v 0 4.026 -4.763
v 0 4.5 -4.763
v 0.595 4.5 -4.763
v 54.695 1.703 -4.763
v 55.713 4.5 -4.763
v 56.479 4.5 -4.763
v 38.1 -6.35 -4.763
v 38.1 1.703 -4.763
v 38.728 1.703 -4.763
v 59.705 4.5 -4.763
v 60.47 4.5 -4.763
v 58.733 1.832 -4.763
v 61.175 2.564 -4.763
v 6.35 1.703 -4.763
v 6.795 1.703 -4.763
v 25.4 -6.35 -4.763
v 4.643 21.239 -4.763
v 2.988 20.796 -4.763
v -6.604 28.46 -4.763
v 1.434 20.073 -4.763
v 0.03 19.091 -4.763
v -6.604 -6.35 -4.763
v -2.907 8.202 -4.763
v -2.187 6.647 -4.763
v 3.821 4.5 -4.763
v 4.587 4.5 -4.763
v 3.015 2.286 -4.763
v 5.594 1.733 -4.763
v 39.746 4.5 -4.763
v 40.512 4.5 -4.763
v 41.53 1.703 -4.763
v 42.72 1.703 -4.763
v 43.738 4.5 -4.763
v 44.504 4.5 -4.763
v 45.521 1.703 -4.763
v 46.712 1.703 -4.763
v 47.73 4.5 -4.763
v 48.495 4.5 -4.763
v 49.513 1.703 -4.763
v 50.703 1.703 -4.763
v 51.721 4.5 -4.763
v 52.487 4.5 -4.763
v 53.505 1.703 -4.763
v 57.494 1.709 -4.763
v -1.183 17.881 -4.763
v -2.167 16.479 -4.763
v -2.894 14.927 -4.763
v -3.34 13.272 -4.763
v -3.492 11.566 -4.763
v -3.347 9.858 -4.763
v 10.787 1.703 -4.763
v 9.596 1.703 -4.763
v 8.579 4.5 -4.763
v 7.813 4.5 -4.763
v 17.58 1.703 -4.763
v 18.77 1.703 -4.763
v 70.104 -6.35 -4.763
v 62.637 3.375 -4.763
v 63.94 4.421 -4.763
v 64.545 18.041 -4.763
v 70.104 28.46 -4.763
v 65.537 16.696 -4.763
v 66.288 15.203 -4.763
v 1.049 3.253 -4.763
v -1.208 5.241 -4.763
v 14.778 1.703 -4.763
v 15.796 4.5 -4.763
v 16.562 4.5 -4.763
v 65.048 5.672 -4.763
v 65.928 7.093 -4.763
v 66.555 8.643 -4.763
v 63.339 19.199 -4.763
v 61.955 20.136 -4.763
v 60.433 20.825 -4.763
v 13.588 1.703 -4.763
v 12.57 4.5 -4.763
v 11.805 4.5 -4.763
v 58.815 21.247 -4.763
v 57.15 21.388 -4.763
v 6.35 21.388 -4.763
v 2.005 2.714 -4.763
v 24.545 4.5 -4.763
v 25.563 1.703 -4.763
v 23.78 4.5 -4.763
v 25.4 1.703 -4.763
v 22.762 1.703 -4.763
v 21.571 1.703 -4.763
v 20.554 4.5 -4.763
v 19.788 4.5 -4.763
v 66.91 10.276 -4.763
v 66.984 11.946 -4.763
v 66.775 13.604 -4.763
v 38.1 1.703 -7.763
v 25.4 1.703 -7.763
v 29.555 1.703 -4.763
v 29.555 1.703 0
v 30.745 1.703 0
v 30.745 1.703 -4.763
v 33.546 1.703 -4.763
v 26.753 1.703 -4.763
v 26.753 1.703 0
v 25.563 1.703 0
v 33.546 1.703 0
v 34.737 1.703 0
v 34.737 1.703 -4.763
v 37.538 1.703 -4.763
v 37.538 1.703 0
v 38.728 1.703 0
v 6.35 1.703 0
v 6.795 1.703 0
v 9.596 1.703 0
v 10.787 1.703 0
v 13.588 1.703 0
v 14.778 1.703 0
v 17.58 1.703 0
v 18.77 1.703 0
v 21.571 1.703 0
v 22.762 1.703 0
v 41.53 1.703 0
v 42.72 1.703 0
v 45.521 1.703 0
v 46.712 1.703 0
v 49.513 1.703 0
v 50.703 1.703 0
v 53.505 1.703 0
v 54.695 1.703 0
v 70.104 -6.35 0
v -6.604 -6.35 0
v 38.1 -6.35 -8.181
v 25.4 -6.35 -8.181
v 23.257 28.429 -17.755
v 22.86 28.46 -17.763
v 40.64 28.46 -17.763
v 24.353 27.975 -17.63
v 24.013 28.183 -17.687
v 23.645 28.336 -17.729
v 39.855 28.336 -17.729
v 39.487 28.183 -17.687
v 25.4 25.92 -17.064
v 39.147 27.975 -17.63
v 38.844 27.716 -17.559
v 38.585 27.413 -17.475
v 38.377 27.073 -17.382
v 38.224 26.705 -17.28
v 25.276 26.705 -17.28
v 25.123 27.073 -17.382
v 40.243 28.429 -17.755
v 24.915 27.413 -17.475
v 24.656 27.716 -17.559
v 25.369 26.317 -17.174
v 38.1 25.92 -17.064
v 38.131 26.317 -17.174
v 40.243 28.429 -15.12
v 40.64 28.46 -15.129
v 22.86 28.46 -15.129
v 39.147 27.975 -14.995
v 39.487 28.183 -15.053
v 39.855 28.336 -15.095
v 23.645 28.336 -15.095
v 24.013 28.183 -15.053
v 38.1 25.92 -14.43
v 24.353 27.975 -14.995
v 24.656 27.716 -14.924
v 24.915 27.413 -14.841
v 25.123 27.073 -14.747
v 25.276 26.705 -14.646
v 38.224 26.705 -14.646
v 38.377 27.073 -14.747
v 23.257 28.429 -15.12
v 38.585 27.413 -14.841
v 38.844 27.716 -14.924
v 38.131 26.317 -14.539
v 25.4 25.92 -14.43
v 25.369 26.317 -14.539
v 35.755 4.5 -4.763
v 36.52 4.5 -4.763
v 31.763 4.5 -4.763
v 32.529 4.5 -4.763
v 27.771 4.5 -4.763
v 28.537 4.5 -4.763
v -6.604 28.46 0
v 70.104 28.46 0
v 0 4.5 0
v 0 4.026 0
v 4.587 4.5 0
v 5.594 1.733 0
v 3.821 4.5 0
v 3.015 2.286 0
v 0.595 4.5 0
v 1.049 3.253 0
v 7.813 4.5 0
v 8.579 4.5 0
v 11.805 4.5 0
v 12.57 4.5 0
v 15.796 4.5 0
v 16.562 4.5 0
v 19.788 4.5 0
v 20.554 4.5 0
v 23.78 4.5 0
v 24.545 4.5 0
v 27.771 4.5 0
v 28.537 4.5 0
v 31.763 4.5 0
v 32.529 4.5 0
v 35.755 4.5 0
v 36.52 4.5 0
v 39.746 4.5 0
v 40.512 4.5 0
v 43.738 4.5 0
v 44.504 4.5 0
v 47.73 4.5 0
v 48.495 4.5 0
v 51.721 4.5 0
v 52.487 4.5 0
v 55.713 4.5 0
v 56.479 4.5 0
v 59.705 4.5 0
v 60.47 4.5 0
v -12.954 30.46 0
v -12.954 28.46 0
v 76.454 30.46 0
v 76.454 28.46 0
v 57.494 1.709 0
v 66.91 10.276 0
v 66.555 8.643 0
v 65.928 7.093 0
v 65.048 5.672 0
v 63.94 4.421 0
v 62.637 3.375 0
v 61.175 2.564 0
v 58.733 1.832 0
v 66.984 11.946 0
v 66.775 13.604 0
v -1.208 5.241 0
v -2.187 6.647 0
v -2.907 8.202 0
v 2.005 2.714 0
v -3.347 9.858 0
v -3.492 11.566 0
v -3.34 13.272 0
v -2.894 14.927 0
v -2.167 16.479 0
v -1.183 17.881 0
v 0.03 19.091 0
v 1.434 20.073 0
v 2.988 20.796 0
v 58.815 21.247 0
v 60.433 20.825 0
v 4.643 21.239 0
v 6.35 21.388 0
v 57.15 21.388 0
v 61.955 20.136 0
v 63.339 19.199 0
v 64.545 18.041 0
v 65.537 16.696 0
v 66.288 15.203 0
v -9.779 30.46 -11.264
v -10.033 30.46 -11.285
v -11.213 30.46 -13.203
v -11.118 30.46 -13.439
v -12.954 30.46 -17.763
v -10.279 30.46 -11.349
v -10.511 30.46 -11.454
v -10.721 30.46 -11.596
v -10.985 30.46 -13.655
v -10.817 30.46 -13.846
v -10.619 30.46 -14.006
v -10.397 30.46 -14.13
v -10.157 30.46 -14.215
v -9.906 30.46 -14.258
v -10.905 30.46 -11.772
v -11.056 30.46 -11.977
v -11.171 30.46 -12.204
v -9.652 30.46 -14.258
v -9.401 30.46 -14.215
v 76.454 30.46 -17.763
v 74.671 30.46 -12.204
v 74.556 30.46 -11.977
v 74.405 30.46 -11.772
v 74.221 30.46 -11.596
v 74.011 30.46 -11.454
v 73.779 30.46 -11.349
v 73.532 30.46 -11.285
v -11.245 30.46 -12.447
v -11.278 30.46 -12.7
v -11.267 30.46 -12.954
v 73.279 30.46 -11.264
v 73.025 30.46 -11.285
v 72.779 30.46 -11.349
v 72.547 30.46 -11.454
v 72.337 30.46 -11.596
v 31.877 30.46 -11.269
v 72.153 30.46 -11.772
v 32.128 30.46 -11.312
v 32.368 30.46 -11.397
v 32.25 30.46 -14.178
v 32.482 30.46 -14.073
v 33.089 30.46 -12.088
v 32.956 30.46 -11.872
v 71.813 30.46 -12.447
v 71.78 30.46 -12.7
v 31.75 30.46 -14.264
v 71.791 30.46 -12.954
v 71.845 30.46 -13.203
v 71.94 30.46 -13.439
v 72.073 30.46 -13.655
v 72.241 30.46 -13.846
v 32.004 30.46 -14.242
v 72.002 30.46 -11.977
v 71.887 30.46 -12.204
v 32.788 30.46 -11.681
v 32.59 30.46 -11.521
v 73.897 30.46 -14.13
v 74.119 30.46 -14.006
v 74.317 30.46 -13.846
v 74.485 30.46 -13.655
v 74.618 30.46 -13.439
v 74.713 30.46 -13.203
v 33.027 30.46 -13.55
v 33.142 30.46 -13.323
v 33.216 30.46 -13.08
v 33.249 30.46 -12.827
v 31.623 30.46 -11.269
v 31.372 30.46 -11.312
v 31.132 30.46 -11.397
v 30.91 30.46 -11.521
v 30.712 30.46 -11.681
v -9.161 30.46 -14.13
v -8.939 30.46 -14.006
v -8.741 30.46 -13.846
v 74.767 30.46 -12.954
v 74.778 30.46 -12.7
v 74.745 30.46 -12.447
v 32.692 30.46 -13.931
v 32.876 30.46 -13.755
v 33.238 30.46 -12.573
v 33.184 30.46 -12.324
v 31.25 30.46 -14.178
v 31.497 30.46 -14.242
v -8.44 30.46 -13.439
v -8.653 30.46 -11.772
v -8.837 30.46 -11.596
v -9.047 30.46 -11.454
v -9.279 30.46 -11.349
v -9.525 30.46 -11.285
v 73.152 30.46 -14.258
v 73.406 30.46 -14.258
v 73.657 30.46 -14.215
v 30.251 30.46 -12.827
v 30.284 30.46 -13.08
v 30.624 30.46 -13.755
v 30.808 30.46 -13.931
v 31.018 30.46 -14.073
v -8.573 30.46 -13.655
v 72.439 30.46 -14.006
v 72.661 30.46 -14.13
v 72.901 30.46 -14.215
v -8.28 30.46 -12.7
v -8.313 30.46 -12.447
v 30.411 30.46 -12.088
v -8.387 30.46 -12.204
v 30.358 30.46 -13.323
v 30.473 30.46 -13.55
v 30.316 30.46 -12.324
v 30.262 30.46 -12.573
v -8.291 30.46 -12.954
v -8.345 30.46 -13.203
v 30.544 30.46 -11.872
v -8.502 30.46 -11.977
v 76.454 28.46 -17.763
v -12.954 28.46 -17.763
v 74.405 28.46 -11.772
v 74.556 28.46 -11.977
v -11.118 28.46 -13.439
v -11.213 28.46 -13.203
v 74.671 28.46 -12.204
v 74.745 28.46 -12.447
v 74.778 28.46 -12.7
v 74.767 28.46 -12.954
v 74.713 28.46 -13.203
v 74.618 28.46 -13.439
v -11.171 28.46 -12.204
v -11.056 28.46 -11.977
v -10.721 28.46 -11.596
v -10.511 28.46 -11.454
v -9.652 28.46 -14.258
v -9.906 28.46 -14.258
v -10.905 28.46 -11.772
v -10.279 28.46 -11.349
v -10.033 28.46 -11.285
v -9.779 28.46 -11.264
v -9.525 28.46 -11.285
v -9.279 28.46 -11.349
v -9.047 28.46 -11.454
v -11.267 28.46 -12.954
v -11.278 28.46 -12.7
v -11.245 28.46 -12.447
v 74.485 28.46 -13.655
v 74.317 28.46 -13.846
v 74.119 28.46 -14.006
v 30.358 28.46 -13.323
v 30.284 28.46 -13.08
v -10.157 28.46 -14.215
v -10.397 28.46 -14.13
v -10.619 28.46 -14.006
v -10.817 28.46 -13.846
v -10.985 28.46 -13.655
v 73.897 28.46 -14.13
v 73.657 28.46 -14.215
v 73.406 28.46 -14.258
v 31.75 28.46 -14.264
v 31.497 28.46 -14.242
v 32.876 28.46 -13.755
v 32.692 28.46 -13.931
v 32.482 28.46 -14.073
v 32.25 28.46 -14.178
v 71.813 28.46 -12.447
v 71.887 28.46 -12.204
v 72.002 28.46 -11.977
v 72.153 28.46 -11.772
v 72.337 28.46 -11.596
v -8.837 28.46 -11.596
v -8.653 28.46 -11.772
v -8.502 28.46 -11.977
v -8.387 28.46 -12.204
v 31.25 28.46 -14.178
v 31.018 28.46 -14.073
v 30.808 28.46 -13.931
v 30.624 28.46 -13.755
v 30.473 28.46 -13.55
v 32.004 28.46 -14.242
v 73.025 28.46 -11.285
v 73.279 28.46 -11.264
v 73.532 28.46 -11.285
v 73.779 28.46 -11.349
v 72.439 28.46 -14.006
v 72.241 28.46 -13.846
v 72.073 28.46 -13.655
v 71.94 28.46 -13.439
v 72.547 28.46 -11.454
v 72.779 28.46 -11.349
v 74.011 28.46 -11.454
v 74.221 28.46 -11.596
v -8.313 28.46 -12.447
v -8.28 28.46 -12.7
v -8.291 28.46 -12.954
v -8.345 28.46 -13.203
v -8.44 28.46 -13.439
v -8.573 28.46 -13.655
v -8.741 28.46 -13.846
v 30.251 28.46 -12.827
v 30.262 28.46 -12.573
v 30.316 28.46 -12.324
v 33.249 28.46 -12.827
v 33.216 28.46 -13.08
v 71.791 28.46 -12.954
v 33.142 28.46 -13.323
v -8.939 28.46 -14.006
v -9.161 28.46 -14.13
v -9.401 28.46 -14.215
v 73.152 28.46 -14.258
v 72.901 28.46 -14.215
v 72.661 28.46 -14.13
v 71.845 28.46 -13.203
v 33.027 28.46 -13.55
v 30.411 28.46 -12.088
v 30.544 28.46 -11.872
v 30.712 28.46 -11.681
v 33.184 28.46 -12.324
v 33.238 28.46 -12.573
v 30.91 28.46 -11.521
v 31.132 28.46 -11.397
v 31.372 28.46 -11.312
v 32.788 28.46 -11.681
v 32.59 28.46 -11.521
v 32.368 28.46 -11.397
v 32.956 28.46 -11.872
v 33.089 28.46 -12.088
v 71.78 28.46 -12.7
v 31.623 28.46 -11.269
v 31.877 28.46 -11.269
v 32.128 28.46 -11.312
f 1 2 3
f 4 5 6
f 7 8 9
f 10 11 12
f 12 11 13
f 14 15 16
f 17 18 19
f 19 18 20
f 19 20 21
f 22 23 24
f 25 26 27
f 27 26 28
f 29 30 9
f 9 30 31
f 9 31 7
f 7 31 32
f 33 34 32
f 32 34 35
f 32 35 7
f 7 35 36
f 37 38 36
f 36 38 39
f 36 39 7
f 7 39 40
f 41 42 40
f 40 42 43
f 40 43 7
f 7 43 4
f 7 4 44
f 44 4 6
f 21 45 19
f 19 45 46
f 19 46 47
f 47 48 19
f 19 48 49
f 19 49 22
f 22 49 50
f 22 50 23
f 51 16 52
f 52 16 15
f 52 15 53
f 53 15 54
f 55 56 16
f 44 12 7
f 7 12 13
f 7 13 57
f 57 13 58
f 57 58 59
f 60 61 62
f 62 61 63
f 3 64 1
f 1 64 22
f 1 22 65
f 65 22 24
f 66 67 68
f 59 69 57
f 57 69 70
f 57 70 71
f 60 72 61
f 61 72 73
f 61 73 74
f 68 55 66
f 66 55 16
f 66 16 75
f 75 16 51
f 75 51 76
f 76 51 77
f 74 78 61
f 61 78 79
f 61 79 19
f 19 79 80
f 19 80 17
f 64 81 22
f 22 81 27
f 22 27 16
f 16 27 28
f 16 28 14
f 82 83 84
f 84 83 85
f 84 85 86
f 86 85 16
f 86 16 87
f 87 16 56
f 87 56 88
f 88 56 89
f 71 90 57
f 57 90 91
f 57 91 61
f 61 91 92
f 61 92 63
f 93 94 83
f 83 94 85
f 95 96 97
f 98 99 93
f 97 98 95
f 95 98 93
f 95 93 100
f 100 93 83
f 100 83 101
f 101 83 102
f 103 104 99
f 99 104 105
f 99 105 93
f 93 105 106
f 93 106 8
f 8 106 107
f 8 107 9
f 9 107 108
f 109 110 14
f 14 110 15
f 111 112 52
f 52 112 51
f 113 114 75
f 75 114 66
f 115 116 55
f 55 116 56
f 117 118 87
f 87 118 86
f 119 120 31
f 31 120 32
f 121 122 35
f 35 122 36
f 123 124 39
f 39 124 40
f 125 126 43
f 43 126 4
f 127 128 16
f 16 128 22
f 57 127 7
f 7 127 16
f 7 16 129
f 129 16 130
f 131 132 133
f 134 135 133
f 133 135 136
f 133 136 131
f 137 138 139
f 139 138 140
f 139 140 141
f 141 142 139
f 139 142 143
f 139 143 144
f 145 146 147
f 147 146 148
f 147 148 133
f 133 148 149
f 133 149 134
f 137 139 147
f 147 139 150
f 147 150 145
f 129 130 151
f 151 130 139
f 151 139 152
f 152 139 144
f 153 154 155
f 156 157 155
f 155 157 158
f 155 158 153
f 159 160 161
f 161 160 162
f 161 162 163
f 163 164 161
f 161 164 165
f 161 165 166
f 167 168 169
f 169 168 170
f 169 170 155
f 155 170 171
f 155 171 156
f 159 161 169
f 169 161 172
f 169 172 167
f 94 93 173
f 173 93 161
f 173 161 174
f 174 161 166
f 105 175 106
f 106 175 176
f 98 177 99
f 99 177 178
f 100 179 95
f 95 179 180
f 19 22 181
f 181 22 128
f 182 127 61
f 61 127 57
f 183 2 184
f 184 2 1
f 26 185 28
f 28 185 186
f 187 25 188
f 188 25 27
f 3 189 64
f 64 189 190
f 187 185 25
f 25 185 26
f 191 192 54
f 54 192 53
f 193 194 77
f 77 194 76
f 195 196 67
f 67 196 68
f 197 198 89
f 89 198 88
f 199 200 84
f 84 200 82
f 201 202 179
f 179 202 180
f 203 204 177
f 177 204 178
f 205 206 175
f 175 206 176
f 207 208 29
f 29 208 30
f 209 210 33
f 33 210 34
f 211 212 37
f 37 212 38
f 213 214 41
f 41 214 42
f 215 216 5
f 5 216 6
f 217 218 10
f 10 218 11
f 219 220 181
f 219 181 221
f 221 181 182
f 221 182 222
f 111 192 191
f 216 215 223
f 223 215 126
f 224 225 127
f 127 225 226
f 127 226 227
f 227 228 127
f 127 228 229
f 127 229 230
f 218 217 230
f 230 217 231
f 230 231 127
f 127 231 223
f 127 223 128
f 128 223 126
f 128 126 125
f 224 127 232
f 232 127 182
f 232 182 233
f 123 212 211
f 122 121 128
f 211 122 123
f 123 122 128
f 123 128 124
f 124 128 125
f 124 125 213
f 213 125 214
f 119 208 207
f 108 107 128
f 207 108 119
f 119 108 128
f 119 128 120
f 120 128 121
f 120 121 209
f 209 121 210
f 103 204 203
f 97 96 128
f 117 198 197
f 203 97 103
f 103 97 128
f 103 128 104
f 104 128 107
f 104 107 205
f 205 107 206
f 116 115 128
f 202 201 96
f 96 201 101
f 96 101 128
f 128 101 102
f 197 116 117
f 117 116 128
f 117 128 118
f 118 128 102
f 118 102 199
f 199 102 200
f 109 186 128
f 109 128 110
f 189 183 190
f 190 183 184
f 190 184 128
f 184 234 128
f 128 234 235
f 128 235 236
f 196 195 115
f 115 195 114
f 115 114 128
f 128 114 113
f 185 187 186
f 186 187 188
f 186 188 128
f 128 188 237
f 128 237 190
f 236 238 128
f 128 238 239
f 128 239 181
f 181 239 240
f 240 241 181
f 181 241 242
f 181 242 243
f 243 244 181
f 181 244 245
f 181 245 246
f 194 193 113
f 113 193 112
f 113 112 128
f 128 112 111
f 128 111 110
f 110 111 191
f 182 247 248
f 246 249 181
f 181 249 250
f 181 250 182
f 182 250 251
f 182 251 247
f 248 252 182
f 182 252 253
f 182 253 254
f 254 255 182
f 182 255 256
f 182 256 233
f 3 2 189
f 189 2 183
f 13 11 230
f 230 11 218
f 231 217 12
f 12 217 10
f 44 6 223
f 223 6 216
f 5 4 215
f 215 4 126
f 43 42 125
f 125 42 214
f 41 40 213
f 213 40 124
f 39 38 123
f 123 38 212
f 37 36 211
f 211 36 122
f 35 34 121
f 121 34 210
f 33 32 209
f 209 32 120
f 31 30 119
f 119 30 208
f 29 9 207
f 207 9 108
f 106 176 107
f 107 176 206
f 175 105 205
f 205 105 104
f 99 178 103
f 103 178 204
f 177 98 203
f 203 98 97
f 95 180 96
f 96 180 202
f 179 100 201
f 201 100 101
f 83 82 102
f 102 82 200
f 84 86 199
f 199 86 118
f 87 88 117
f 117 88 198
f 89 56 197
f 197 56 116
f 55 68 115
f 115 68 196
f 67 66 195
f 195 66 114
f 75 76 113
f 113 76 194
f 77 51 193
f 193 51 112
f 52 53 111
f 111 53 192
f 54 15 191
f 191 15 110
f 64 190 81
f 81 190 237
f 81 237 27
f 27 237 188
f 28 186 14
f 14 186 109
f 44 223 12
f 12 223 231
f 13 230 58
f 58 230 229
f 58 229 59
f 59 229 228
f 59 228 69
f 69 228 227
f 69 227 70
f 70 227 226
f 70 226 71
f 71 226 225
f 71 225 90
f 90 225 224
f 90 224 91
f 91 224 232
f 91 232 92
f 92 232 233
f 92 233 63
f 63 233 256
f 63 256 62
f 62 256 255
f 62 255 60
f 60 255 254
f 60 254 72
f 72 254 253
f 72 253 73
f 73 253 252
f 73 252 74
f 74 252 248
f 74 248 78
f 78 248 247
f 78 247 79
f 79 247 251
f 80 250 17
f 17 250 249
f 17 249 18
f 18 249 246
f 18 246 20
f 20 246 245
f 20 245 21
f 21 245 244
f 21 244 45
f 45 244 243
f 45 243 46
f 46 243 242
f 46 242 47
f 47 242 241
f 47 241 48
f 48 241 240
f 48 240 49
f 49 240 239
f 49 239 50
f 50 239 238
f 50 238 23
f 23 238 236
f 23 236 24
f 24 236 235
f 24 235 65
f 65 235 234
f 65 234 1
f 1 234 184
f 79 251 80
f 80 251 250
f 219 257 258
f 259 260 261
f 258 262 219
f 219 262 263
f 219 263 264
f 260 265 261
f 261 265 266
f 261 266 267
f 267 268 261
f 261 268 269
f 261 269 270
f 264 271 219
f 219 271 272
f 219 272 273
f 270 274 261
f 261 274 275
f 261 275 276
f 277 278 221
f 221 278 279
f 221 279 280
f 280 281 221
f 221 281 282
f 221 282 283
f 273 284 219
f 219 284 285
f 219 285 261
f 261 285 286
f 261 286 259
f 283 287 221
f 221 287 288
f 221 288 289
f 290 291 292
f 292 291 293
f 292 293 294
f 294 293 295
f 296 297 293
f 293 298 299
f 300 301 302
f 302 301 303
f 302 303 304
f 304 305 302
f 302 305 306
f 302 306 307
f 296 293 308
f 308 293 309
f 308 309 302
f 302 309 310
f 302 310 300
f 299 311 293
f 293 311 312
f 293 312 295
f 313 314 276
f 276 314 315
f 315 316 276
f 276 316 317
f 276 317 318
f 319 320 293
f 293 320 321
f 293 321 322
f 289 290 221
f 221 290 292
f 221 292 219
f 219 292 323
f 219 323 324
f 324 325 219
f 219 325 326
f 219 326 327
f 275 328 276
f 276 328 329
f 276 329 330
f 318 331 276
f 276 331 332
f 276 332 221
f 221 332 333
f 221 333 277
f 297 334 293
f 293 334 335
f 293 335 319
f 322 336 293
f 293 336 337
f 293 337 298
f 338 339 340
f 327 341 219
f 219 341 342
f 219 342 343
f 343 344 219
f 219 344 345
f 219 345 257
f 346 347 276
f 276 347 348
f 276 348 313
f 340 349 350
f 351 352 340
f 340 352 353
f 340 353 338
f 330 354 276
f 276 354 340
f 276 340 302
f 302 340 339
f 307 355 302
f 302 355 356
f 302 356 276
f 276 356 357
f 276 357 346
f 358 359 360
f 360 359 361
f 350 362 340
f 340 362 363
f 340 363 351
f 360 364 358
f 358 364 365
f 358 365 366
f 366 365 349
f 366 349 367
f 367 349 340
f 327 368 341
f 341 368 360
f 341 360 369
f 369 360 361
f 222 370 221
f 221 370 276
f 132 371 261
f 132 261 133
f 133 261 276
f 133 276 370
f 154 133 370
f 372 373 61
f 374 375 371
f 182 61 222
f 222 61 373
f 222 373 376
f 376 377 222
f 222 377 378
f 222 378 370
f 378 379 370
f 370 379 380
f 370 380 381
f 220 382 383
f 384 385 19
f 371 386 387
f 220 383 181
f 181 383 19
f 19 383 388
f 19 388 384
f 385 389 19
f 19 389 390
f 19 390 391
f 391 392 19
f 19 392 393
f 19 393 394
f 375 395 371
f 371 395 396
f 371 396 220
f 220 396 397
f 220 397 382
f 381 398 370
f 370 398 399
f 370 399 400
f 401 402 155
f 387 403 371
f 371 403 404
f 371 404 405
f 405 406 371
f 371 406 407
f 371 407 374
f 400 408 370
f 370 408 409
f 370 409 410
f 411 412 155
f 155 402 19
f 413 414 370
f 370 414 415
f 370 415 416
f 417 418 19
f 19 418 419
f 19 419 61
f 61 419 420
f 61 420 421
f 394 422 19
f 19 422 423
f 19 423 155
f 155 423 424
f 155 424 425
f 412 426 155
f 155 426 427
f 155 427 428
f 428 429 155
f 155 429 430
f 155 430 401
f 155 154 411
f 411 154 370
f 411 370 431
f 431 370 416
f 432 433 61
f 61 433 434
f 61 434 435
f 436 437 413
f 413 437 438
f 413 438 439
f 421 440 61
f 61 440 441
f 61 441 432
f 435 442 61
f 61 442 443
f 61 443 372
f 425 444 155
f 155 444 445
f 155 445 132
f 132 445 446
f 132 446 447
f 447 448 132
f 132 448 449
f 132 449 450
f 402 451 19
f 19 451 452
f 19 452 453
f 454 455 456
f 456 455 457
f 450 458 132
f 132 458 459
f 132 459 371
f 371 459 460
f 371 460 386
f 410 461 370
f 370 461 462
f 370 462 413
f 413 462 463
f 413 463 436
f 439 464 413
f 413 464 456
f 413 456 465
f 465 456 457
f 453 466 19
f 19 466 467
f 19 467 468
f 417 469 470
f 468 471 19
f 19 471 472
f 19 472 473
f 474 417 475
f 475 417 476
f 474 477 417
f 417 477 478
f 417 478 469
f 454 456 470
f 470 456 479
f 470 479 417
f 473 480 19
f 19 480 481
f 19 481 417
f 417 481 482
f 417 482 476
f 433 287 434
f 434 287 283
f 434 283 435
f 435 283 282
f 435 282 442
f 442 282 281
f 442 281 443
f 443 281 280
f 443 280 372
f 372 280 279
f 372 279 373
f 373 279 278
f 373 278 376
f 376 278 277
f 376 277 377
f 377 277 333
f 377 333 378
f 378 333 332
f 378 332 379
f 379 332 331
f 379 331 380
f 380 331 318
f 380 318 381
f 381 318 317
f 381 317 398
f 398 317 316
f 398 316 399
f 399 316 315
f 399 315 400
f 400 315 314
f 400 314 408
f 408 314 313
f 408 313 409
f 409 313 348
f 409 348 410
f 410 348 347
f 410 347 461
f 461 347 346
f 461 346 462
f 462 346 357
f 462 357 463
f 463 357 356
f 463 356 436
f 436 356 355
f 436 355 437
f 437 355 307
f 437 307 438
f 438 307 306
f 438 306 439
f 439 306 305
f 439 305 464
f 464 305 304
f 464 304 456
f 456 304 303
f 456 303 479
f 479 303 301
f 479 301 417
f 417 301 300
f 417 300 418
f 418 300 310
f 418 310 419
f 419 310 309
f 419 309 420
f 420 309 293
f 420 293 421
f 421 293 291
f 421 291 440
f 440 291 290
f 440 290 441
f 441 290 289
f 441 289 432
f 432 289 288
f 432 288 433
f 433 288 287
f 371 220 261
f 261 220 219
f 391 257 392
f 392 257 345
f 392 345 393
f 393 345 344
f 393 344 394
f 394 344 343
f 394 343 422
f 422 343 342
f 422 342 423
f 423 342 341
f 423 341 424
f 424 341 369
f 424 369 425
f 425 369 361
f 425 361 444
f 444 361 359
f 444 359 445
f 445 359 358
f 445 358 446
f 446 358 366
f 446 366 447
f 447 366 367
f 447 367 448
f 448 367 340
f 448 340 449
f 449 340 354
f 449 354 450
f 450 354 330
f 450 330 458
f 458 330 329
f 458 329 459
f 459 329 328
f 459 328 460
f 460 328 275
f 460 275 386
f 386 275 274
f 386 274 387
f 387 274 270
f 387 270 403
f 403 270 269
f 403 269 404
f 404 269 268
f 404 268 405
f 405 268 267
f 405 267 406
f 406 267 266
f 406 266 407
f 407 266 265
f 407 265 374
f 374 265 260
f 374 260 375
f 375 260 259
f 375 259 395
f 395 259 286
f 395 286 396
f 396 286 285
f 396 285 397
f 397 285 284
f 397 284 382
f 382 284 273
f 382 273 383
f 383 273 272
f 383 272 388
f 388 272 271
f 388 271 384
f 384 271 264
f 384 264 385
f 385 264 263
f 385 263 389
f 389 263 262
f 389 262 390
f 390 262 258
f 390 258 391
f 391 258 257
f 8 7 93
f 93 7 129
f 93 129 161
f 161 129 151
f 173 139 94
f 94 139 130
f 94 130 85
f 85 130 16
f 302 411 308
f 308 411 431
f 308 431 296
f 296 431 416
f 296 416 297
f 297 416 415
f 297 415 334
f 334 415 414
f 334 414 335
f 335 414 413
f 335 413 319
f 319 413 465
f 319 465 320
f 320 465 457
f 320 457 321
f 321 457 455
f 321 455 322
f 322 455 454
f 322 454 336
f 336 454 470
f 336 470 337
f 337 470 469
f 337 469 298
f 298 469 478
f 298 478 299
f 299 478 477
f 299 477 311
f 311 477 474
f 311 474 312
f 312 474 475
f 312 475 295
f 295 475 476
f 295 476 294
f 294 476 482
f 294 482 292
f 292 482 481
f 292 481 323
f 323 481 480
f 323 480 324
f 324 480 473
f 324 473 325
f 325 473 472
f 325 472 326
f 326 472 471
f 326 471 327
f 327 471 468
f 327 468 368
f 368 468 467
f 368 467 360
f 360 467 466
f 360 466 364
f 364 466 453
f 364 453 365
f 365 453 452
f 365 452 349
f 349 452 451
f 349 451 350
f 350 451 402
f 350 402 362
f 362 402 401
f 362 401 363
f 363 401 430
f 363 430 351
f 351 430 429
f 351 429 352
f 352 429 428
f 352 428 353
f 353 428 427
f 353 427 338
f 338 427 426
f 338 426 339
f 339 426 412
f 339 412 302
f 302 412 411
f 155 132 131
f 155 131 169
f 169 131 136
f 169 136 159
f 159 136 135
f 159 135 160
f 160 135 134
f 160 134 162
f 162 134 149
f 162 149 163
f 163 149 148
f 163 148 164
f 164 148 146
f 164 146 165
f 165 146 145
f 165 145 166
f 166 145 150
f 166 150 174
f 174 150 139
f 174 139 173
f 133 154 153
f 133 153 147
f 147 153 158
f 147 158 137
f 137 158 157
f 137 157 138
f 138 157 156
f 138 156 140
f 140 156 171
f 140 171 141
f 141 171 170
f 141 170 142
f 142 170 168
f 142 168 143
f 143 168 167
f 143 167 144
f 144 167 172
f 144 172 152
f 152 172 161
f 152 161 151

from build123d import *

# Parameters (mm, degrees)
SKETCH1_W           = 63.5
SKETCH1_H           = 4.7625
BOSS_EXTRUDE1_DEPTH = 4.5
CUT_EXTRUDE1_DEPTH  = 64.837147542
SKETCH4_W           = 76.708
SKETCH4_H           = 36.80996
BOSS_EXTRUDE2_DEPTH = 4.7625
SKETCH6_W           = 6.35
SKETCH6_H           = 17.76349
SKETCH6_R           = 1.5
BOSS_EXTRUDE3_DEPTH = 2
BOSS_EXTRUDE4_DEPTH = 25.4
BOSS_EXTRUDE5_DEPTH = 33.3375
SKETCH8_W           = 19.05
SKETCH8_H           = 13.00099
CUT_EXTRUDE2_DEPTH  = 86.863199382
SKETCH9_R           = 1.5
CUT_EXTRUDE3_DEPTH  = 86.863199382
FILLET1_R           = 2.54
SKETCH10_W          = 13.00099
SKETCH10_H          = 2
BOSS_EXTRUDE6_DEPTH = 5.0165
SKETCH11_W          = 13.00099
SKETCH11_H          = 2
BOSS_EXTRUDE7_DEPTH = 5.0165


with BuildPart() as part:
    # Sketch1 → Boss-Extrude1 (new body)
    with BuildSketch(Plane(origin=(0, 0, 0), x_dir=(1, 0, 0), z_dir=(0, 1, 0))):
        with Locations((31.75, 2.38125)):
            Rectangle(SKETCH1_W, SKETCH1_H)
    extrude(amount=BOSS_EXTRUDE1_DEPTH)

    # Sketch2 → Cut-Extrude1 (cut, through all)
    with BuildSketch(Plane.XY):
        Polygon((0.595167363, 4.5), (1.613024682, 1.70346), (2.208192045, 1.70346), (2.803359408, 1.70346), (3.821216727, 4.5), align=None)
        Polygon((4.586843593, 4.5), (5.604700912, 1.70346), (6.199868275, 1.70346), (6.795035638, 1.70346), (7.812892957, 4.5), align=None)
        Polygon((8.578519823, 4.5), (9.596377142, 1.70346), (10.191544505, 1.70346), (10.786711868, 1.70346), (11.804569186, 4.5), align=None)
        Polygon((12.570196052, 4.5), (13.588053371, 1.70346), (14.183220734, 1.70346), (14.778388097, 1.70346), (15.796245416, 4.5), align=None)
        Polygon((16.561872282, 4.5), (17.579729601, 1.70346), (18.174896964, 1.70346), (18.770064327, 1.70346), (19.787921646, 4.5), align=None)
        Polygon((20.553548512, 4.5), (21.571405831, 1.70346), (22.166573194, 1.70346), (22.761740557, 1.70346), (23.779597876, 4.5), align=None)
        Polygon((24.545224742, 4.5), (25.563082061, 1.70346), (26.158249424, 1.70346), (26.753416787, 1.70346), (27.771274106, 4.5), align=None)
        Polygon((28.536900972, 4.5), (29.554758291, 1.70346), (30.149925654, 1.70346), (30.745093017, 1.70346), (31.762950336, 4.5), align=None)
        Polygon((32.528577202, 4.5), (33.546434521, 1.70346), (34.141601884, 1.70346), (34.736769246, 1.70346), (35.754626565, 4.5), align=None)
        Polygon((36.520253431, 4.5), (37.53811075, 1.70346), (38.133278113, 1.70346), (38.728445476, 1.70346), (39.746302795, 4.5), align=None)
        Polygon((40.511929661, 4.5), (41.52978698, 1.70346), (42.124954343, 1.70346), (42.720121706, 1.70346), (43.737979025, 4.5), align=None)
        Polygon((44.503605891, 4.5), (45.52146321, 1.70346), (46.116630573, 1.70346), (46.711797936, 1.70346), (47.729655255, 4.5), align=None)
        Polygon((48.495282121, 4.5), (49.51313944, 1.70346), (50.108306803, 1.70346), (50.703474166, 1.70346), (51.721331485, 4.5), align=None)
        Polygon((52.486958351, 4.5), (53.50481567, 1.70346), (54.099983033, 1.70346), (54.695150396, 1.70346), (55.713007715, 4.5), align=None)
        Polygon((56.478634581, 4.5), (57.496491899, 1.70346), (58.091659262, 1.70346), (58.686826625, 1.70346), (59.704683944, 4.5), align=None)
        Polygon((60.47031081, 4.5), (61.488168129, 1.70346), (62.083335492, 1.70346), (62.678502855, 1.70346), (63.696360174, 4.5), align=None)
        Polygon((64.46198704, 4.5), (65.479844359, 1.70346), (66.075011722, 1.70346), (66.670179085, 1.70346), (67.688036404, 4.5), align=None)
        Polygon((68.45366327, 4.5), (69.471520589, 1.70346), (70.066687952, 1.70346), (70.661855315, 1.70346), (71.679712634, 4.5), align=None)
        Polygon((72.4453395, 4.5), (73.463196819, 1.70346), (74.058364182, 1.70346), (74.653531545, 1.70346), (75.671388864, 4.5), align=None)
        Polygon((76.43701573, 4.5), (77.454873049, 1.70346), (78.050040412, 1.70346), (78.645207775, 1.70346), (79.663065094, 4.5), align=None)
        Polygon((80.42869196, 4.5), (81.446549278, 1.70346), (82.041716641, 1.70346), (82.636884004, 1.70346), (83.654741323, 4.5), align=None)
        Polygon((84.420368189, 4.5), (85.438225508, 1.70346), (86.033392871, 1.70346), (86.628560234, 1.70346), (87.646417553, 4.5), align=None)
        Polygon((88.412044419, 4.5), (89.429901738, 1.70346), (90.025069101, 1.70346), (90.620236464, 1.70346), (91.638093783, 4.5), align=None)
        Polygon((92.403720649, 4.5), (93.421577968, 1.70346), (94.016745331, 1.70346), (94.611912694, 1.70346), (95.629770013, 4.5), align=None)
        Polygon((96.395396879, 4.5), (97.413254198, 1.70346), (98.008421561, 1.70346), (98.603588924, 1.70346), (99.621446243, 4.5), align=None)
        Polygon((100.387073109, 4.5), (101.404930428, 1.70346), (102.000097791, 1.70346), (102.595265154, 1.70346), (103.613122472, 4.5), align=None)
        Polygon((104.378749338, 4.5), (105.396606657, 1.70346), (105.99177402, 1.70346), (106.586941383, 1.70346), (107.604798702, 4.5), align=None)
        Polygon((108.370425568, 4.5), (109.388282887, 1.70346), (109.98345025, 1.70346), (110.578617613, 1.70346), (111.596474932, 4.5), align=None)
        Polygon((112.362101798, 4.5), (113.379959117, 1.70346), (113.97512648, 1.70346), (114.570293843, 1.70346), (115.588151162, 4.5), align=None)
        Polygon((116.353778028, 4.5), (117.371635347, 1.70346), (117.96680271, 1.70346), (118.561970073, 1.70346), (119.579827392, 4.5), align=None)
        Polygon((120.345454258, 4.5), (121.363311577, 1.70346), (121.95847894, 1.70346), (122.553646303, 1.70346), (123.571503622, 4.5), align=None)
        Polygon((124.337130488, 4.5), (125.354987807, 1.70346), (125.95015517, 1.70346), (126.545322532, 1.70346), (127.563179851, 4.5), align=None)
        Polygon((128.328806717, 4.5), (129.346664036, 1.70346), (129.941831399, 1.70346), (130.536998762, 1.70346), (131.554856081, 4.5), align=None)
        Polygon((132.320482947, 4.5), (133.338340266, 1.70346), (133.933507629, 1.70346), (134.528674992, 1.70346), (135.546532311, 4.5), align=None)
        Polygon((136.312159177, 4.5), (137.330016496, 1.70346), (137.925183859, 1.70346), (138.520351222, 1.70346), (139.538208541, 4.5), align=None)
        Polygon((140.303835407, 4.5), (141.321692726, 1.70346), (141.916860089, 1.70346), (142.512027452, 1.70346), (143.529884771, 4.5), align=None)
        Polygon((144.295511637, 4.5), (145.313368956, 1.70346), (145.908536319, 1.70346), (146.503703682, 1.70346), (147.521561001, 4.5), align=None)
        Polygon((148.287187867, 4.5), (149.305045185, 1.70346), (149.900212548, 1.70346), (150.495379911, 1.70346), (151.51323723, 4.5), align=None)
        Polygon((152.278864096, 4.5), (153.296721415, 1.70346), (153.891888778, 1.70346), (154.487056141, 1.70346), (155.50491346, 4.5), align=None)
        Polygon((156.270540326, 4.5), (157.288397645, 1.70346), (157.883565008, 1.70346), (158.478732371, 1.70346), (159.49658969, 4.5), align=None)
        Polygon((160.262216556, 4.5), (161.280073875, 1.70346), (161.875241238, 1.70346), (162.470408601, 1.70346), (163.48826592, 4.5), align=None)
        Polygon((164.253892786, 4.5), (165.271750105, 1.70346), (165.866917468, 1.70346), (166.462084831, 1.70346), (167.47994215, 4.5), align=None)
        Polygon((168.245569016, 4.5), (169.263426335, 1.70346), (169.858593698, 1.70346), (170.453761061, 1.70346), (171.47161838, 4.5), align=None)
        Polygon((172.237245246, 4.5), (173.255102564, 1.70346), (173.850269927, 1.70346), (174.44543729, 1.70346), (175.463294609, 4.5), align=None)
        Polygon((176.228921475, 4.5), (177.246778794, 1.70346), (177.841946157, 1.70346), (178.43711352, 1.70346), (179.454970839, 4.5), align=None)
        Polygon((180.220597705, 4.5), (181.238455024, 1.70346), (181.833622387, 1.70346), (182.42878975, 1.70346), (183.446647069, 4.5), align=None)
        Polygon((184.212273935, 4.5), (185.230131254, 1.70346), (185.825298617, 1.70346), (186.42046598, 1.70346), (187.438323299, 4.5), align=None)
        Polygon((188.203950165, 4.5), (189.221807484, 1.70346), (189.816974847, 1.70346), (190.41214221, 1.70346), (191.429999529, 4.5), align=None)
        Polygon((192.195626395, 4.5), (193.213483714, 1.70346), (193.808651077, 1.70346), (194.40381844, 1.70346), (195.421675758, 4.5), align=None)
        Polygon((196.187302624, 4.5), (197.205159943, 1.70346), (197.800327306, 1.70346), (198.395494669, 1.70346), (199.413351988, 4.5), align=None)
        Polygon((200.178978854, 4.5), (201.196836173, 1.70346), (201.792003536, 1.70346), (202.387170899, 1.70346), (203.405028218, 4.5), align=None)
        Polygon((204.170655084, 4.5), (205.188512403, 1.70346), (205.783679766, 1.70346), (206.378847129, 1.70346), (207.396704448, 4.5), align=None)
        Polygon((208.162331314, 4.5), (209.180188633, 1.70346), (209.775355996, 1.70346), (210.370523359, 1.70346), (211.388380678, 4.5), align=None)
        Polygon((212.154007544, 4.5), (213.171864863, 1.70346), (213.767032226, 1.70346), (214.362199589, 1.70346), (215.380056908, 4.5), align=None)
        Polygon((216.145683774, 4.5), (217.163541093, 1.70346), (217.758708456, 1.70346), (218.353875818, 1.70346), (219.371733137, 4.5), align=None)
        Polygon((220.137360003, 4.5), (221.155217322, 1.70346), (221.750384685, 1.70346), (222.345552048, 1.70346), (223.363409367, 4.5), align=None)
        Polygon((224.129036233, 4.5), (225.146893552, 1.70346), (225.742060915, 1.70346), (226.337228278, 1.70346), (227.355085597, 4.5), align=None)
        Polygon((228.120712463, 4.5), (229.138569782, 1.70346), (229.733737145, 1.70346), (230.328904508, 1.70346), (231.346761827, 4.5), align=None)
        Polygon((232.112388693, 4.5), (233.130246012, 1.70346), (233.725413375, 1.70346), (234.320580738, 1.70346), (235.338438057, 4.5), align=None)
        Polygon((236.104064923, 4.5), (237.121922242, 1.70346), (237.717089605, 1.70346), (238.312256968, 1.70346), (239.330114287, 4.5), align=None)
        Polygon((240.095741153, 4.5), (241.113598471, 1.70346), (241.708765834, 1.70346), (242.303933197, 1.70346), (243.321790516, 4.5), align=None)
        Polygon((244.087417382, 4.5), (245.105274701, 1.70346), (245.700442064, 1.70346), (246.295609427, 1.70346), (247.313466746, 4.5), align=None)
        Polygon((248.079093612, 4.5), (249.096950931, 1.70346), (249.692118294, 1.70346), (250.287285657, 1.70346), (251.305142976, 4.5), align=None)
        Polygon((252.070769842, 4.5), (253.088627161, 1.70346), (253.683794524, 1.70346), (254.278961887, 1.70346), (255.296819206, 4.5), align=None)
        Polygon((256.062446072, 4.5), (257.080303391, 1.70346), (257.675470754, 1.70346), (258.270638117, 1.70346), (259.288495436, 4.5), align=None)
        Polygon((260.054122302, 4.5), (261.071979621, 1.70346), (261.667146984, 1.70346), (262.262314347, 1.70346), (263.280171666, 4.5), align=None)
        Polygon((264.045798532, 4.5), (265.06365585, 1.70346), (265.658823213, 1.70346), (266.253990576, 1.70346), (267.271847895, 4.5), align=None)
        Polygon((268.037474761, 4.5), (269.05533208, 1.70346), (269.650499443, 1.70346), (270.245666806, 1.70346), (271.263524125, 4.5), align=None)
        Polygon((272.029150991, 4.5), (273.04700831, 1.70346), (273.642175673, 1.70346), (274.237343036, 1.70346), (275.255200355, 4.5), align=None)
        Polygon((276.020827221, 4.5), (277.03868454, 1.70346), (277.633851903, 1.70346), (278.229019266, 1.70346), (279.246876585, 4.5), align=None)
        Polygon((280.012503451, 4.5), (281.03036077, 1.70346), (281.625528133, 1.70346), (282.220695496, 1.70346), (283.238552815, 4.5), align=None)
        Polygon((284.004179681, 4.5), (285.022037, 1.70346), (285.617204363, 1.70346), (286.212371726, 1.70346), (287.230229044, 4.5), align=None)
        Polygon((287.99585591, 4.5), (289.013713229, 1.70346), (289.608880592, 1.70346), (290.204047955, 1.70346), (291.221905274, 4.5), align=None)
        Polygon((291.98753214, 4.5), (293.005389459, 1.70346), (293.600556822, 1.70346), (294.195724185, 1.70346), (295.213581504, 4.5), align=None)
        Polygon((295.97920837, 4.5), (296.997065689, 1.70346), (297.592233052, 1.70346), (298.187400415, 1.70346), (299.205257734, 4.5), align=None)
        Polygon((299.9708846, 4.5), (300.988741919, 1.70346), (301.583909282, 1.70346), (302.179076645, 1.70346), (303.196933964, 4.5), align=None)
        Polygon((303.96256083, 4.5), (304.980418149, 1.70346), (305.575585512, 1.70346), (306.170752875, 1.70346), (307.188610194, 4.5), align=None)
        Polygon((307.95423706, 4.5), (308.972094379, 1.70346), (309.567261742, 1.70346), (310.162429104, 1.70346), (311.180286423, 4.5), align=None)
        Polygon((311.945913289, 4.5), (312.963770608, 1.70346), (313.558937971, 1.70346), (314.154105334, 1.70346), (315.171962653, 4.5), align=None)
        Polygon((315.937589519, 4.5), (316.955446838, 1.70346), (317.550614201, 1.70346), (318.145781564, 1.70346), (319.163638883, 4.5), align=None)
        Polygon((319.929265749, 4.5), (320.947123068, 1.70346), (321.542290431, 1.70346), (322.137457794, 1.70346), (323.155315113, 4.5), align=None)
        Polygon((323.920941979, 4.5), (324.938799298, 1.70346), (325.533966661, 1.70346), (326.129134024, 1.70346), (327.146991343, 4.5), align=None)
        Polygon((327.912618209, 4.5), (328.930475528, 1.70346), (329.525642891, 1.70346), (330.120810254, 1.70346), (331.138667573, 4.5), align=None)
        Polygon((331.904294439, 4.5), (332.922151757, 1.70346), (333.51731912, 1.70346), (334.112486483, 1.70346), (335.130343802, 4.5), align=None)
        Polygon((335.895970668, 4.5), (336.913827987, 1.70346), (337.50899535, 1.70346), (338.104162713, 1.70346), (339.122020032, 4.5), align=None)
        Polygon((339.887646898, 4.5), (340.905504217, 1.70346), (341.50067158, 1.70346), (342.095838943, 1.70346), (343.113696262, 4.5), align=None)
        Polygon((343.879323128, 4.5), (344.897180447, 1.70346), (345.49234781, 1.70346), (346.087515173, 1.70346), (347.105372492, 4.5), align=None)
        Polygon((347.870999358, 4.5), (348.888856677, 1.70346), (349.48402404, 1.70346), (350.079191403, 1.70346), (351.097048722, 4.5), align=None)
        Polygon((351.862675588, 4.5), (352.880532907, 1.70346), (353.47570027, 1.70346), (354.070867633, 1.70346), (355.088724952, 4.5), align=None)
        Polygon((355.854351818, 4.5), (356.872209136, 1.70346), (357.467376499, 1.70346), (358.062543862, 1.70346), (359.080401181, 4.5), align=None)
        Polygon((359.846028047, 4.5), (360.863885366, 1.70346), (361.459052729, 1.70346), (362.054220092, 1.70346), (363.072077411, 4.5), align=None)
        Polygon((363.837704277, 4.5), (364.855561596, 1.70346), (365.450728959, 1.70346), (366.045896322, 1.70346), (367.063753641, 4.5), align=None)
        Polygon((367.829380507, 4.5), (368.847237826, 1.70346), (369.442405189, 1.70346), (370.037572552, 1.70346), (371.055429871, 4.5), align=None)
        Polygon((371.821056737, 4.5), (372.838914056, 1.70346), (373.434081419, 1.70346), (374.029248782, 1.70346), (375.047106101, 4.5), align=None)
        Polygon((375.812732967, 4.5), (376.830590286, 1.70346), (377.425757649, 1.70346), (378.020925012, 1.70346), (379.03878233, 4.5), align=None)
        Polygon((379.804409196, 4.5), (380.822266515, 1.70346), (381.417433878, 1.70346), (382.012601241, 1.70346), (383.03045856, 4.5), align=None)
        Polygon((383.796085426, 4.5), (384.813942745, 1.70346), (385.409110108, 1.70346), (386.004277471, 1.70346), (387.02213479, 4.5), align=None)
        Polygon((387.787761656, 4.5), (388.805618975, 1.70346), (389.400786338, 1.70346), (389.995953701, 1.70346), (391.01381102, 4.5), align=None)
        Polygon((391.779437886, 4.5), (392.797295205, 1.70346), (393.392462568, 1.70346), (393.987629931, 1.70346), (395.00548725, 4.5), align=None)
        Polygon((395.771114116, 4.5), (396.788971435, 1.70346), (397.384138798, 1.70346), (397.979306161, 1.70346), (398.99716348, 4.5), align=None)
        Polygon((399.762790346, 4.5), (400.780647665, 1.70346), (401.375815028, 1.70346), (401.97098239, 1.70346), (402.988839709, 4.5), align=None)
        Polygon((403.754466575, 4.5), (404.772323894, 1.70346), (405.367491257, 1.70346), (405.96265862, 1.70346), (406.980515939, 4.5), align=None)
        Polygon((407.746142805, 4.5), (408.764000124, 1.70346), (409.359167487, 1.70346), (409.95433485, 1.70346), (410.972192169, 4.5), align=None)
        Polygon((411.737819035, 4.5), (412.755676354, 1.70346), (413.350843717, 1.70346), (413.94601108, 1.70346), (414.963868399, 4.5), align=None)
        Polygon((415.729495265, 4.5), (416.747352584, 1.70346), (417.342519947, 1.70346), (417.93768731, 1.70346), (418.955544629, 4.5), align=None)
        Polygon((419.721171495, 4.5), (420.739028814, 1.70346), (421.334196177, 1.70346), (421.92936354, 1.70346), (422.947220859, 4.5), align=None)
        Polygon((423.712847725, 4.5), (424.730705043, 1.70346), (425.325872406, 1.70346), (425.921039769, 1.70346), (426.938897088, 4.5), align=None)
        Polygon((427.704523954, 4.5), (428.722381273, 1.70346), (429.317548636, 1.70346), (429.912715999, 1.70346), (430.930573318, 4.5), align=None)
        Polygon((431.696200184, 4.5), (432.714057503, 1.70346), (433.309224866, 1.70346), (433.904392229, 1.70346), (434.922249548, 4.5), align=None)
        Polygon((435.687876414, 4.5), (436.705733733, 1.70346), (437.300901096, 1.70346), (437.896068459, 1.70346), (438.913925778, 4.5), align=None)
        Polygon((439.679552644, 4.5), (440.697409963, 1.70346), (441.292577326, 1.70346), (441.887744689, 1.70346), (442.905602008, 4.5), align=None)
        Polygon((443.671228874, 4.5), (444.689086193, 1.70346), (445.284253556, 1.70346), (445.879420919, 1.70346), (446.897278238, 4.5), align=None)
        Polygon((447.662905104, 4.5), (448.680762422, 1.70346), (449.275929785, 1.70346), (449.871097148, 1.70346), (450.888954467, 4.5), align=None)
        Polygon((451.654581333, 4.5), (452.672438652, 1.70346), (453.267606015, 1.70346), (453.862773378, 1.70346), (454.880630697, 4.5), align=None)
        Polygon((455.646257563, 4.5), (456.664114882, 1.70346), (457.259282245, 1.70346), (457.854449608, 1.70346), (458.872306927, 4.5), align=None)
        Polygon((459.637933793, 4.5), (460.655791112, 1.70346), (461.250958475, 1.70346), (461.846125838, 1.70346), (462.863983157, 4.5), align=None)
        Polygon((463.629610023, 4.5), (464.647467342, 1.70346), (465.242634705, 1.70346), (465.837802068, 1.70346), (466.855659387, 4.5), align=None)
        Polygon((467.621286253, 4.5), (468.639143572, 1.70346), (469.234310935, 1.70346), (469.829478298, 1.70346), (470.847335616, 4.5), align=None)
        Polygon((471.612962482, 4.5), (472.630819801, 1.70346), (473.225987164, 1.70346), (473.821154527, 1.70346), (474.839011846, 4.5), align=None)
        Polygon((475.604638712, 4.5), (476.622496031, 1.70346), (477.217663394, 1.70346), (477.812830757, 1.70346), (478.830688076, 4.5), align=None)
        Polygon((479.596314942, 4.5), (480.614172261, 1.70346), (481.209339624, 1.70346), (481.804506987, 1.70346), (482.822364306, 4.5), align=None)
        Polygon((483.587991172, 4.5), (484.605848491, 1.70346), (485.201015854, 1.70346), (485.796183217, 1.70346), (486.814040536, 4.5), align=None)
        Polygon((487.579667402, 4.5), (488.597524721, 1.70346), (489.192692084, 1.70346), (489.787859447, 1.70346), (490.805716766, 4.5), align=None)
        Polygon((491.571343632, 4.5), (492.589200951, 1.70346), (493.184368314, 1.70346), (493.779535676, 1.70346), (494.797392995, 4.5), align=None)
        Polygon((495.563019861, 4.5), (496.58087718, 1.70346), (497.176044543, 1.70346), (497.771211906, 1.70346), (498.789069225, 4.5), align=None)
    extrude(amount=-CUT_EXTRUDE1_DEPTH, mode=Mode.SUBTRACT)

    # Sketch4 → Boss-Extrude2 (add)
    with BuildSketch(Plane.XY):
        with Locations((31.75, 12.05498)):
            Rectangle(SKETCH4_W, SKETCH4_H)
        with BuildLine():
            Line((57.15, 21.38846), (6.35, 21.38846))
            ThreePointArc((6.35, 21.38846), (-3.4925, 11.54596), (6.35, 1.70346))
            Line((6.35, 1.70346), (57.15, 1.70346))
            ThreePointArc((57.15, 1.70346), (66.9925, 11.54596), (57.15, 21.38846))
        make_face(mode=Mode.SUBTRACT)
    extrude(amount=-BOSS_EXTRUDE2_DEPTH)

    # Sketch6 → Boss-Extrude3 (add)
    # profile 1 of 2: a face of its own
    with BuildSketch(Plane(origin=(0, 30.45996, 0), x_dir=(1, 0, 0), z_dir=(0, 1, 0))):
        with Locations((73.279, 8.881745)):
            Rectangle(SKETCH6_W, SKETCH6_H)
        with Locations(Location((73.279, 12.7635, 0), (0, 0, 270))):
            Circle(SKETCH6_R, mode=Mode.SUBTRACT)
    # profile 2 of 2: a face of its own
    with BuildSketch(Plane(origin=(0, 30.45996, 0), x_dir=(1, 0, 0), z_dir=(0, 1, 0))):
        with Locations((-9.779, 8.881745)):
            Rectangle(SKETCH6_W, SKETCH6_H)
        with Locations(Location((-9.779, 12.7635, 0), (0, 0, 270))):
            Circle(SKETCH6_R, mode=Mode.SUBTRACT)
    extrude(amount=-BOSS_EXTRUDE3_DEPTH)

    # Sketch7 → Boss-Extrude4 (add, symmetric)
    with BuildSketch(Plane(origin=(31.75, 0, 0), x_dir=(0, 0, -1), z_dir=(1, 0, 0))):
        Polygon((4.7625, -6.35), (8.181031482, -6.35), (17.76349, 28.45996), (15.129008358, 28.45996), (7.7635, 1.70346), (4.7625, 1.70346), align=None)
    extrude(amount=BOSS_EXTRUDE4_DEPTH, both=True)

    # Sketch7<3> → Boss-Extrude5 (add, symmetric)
    with BuildSketch(Plane(origin=(31.75, 0, 0), x_dir=(0, 0, -1), z_dir=(1, 0, 0))):
        Polygon((17.76349, 28.45996), (15.129008358, 28.45996), (4.7625, 28.45996), (4.7625, 30.45996), (17.76349, 30.45996), align=None)
    extrude(amount=BOSS_EXTRUDE5_DEPTH, both=True)

    # Sketch8 → Cut-Extrude2 (cut, through all)
    with BuildSketch(Plane.XZ.offset(-28.45996)):
        with Locations((15.875, -11.262995)):
            Rectangle(SKETCH8_W, SKETCH8_H)
        with Locations((47.625, -11.262995)):
            Rectangle(SKETCH8_W, SKETCH8_H)
    extrude(amount=CUT_EXTRUDE2_DEPTH, mode=Mode.SUBTRACT)

    # Sketch9 → Cut-Extrude3 (cut, through all)
    with BuildSketch(Plane.XZ.offset(-28.45996)):
        with Locations(Location((31.75, -12.7635, 0), (0, 0, 270))):
            Circle(SKETCH9_R)
    extrude(amount=-CUT_EXTRUDE3_DEPTH, mode=Mode.SUBTRACT)

    # Fillet1
    fillet1_edges = [part.edges().sort_by_distance(p)[0] for p in [
        (25.4, 28.45996, -16.446249179),
        (38.1, 28.45996, -16.446249179),
    ]]
    fillet(fillet1_edges, radius=FILLET1_R)

    # Sketch10 → Boss-Extrude6 (add)
    with BuildSketch(Plane.ZY.offset(1.5875)):
        with Locations((-11.262995, 29.45996)):
            Rectangle(SKETCH10_W, SKETCH10_H)
    extrude(amount=BOSS_EXTRUDE6_DEPTH)

    # Sketch11 → Boss-Extrude7 (add)
    with BuildSketch(Plane(origin=(65.0875, 0, 0), x_dir=(0, 0, -1), z_dir=(1, 0, 0))):
        with Locations((11.262995, 29.45996)):
            Rectangle(SKETCH11_W, SKETCH11_H)
    extrude(amount=BOSS_EXTRUDE7_DEPTH)


solid = part.part
